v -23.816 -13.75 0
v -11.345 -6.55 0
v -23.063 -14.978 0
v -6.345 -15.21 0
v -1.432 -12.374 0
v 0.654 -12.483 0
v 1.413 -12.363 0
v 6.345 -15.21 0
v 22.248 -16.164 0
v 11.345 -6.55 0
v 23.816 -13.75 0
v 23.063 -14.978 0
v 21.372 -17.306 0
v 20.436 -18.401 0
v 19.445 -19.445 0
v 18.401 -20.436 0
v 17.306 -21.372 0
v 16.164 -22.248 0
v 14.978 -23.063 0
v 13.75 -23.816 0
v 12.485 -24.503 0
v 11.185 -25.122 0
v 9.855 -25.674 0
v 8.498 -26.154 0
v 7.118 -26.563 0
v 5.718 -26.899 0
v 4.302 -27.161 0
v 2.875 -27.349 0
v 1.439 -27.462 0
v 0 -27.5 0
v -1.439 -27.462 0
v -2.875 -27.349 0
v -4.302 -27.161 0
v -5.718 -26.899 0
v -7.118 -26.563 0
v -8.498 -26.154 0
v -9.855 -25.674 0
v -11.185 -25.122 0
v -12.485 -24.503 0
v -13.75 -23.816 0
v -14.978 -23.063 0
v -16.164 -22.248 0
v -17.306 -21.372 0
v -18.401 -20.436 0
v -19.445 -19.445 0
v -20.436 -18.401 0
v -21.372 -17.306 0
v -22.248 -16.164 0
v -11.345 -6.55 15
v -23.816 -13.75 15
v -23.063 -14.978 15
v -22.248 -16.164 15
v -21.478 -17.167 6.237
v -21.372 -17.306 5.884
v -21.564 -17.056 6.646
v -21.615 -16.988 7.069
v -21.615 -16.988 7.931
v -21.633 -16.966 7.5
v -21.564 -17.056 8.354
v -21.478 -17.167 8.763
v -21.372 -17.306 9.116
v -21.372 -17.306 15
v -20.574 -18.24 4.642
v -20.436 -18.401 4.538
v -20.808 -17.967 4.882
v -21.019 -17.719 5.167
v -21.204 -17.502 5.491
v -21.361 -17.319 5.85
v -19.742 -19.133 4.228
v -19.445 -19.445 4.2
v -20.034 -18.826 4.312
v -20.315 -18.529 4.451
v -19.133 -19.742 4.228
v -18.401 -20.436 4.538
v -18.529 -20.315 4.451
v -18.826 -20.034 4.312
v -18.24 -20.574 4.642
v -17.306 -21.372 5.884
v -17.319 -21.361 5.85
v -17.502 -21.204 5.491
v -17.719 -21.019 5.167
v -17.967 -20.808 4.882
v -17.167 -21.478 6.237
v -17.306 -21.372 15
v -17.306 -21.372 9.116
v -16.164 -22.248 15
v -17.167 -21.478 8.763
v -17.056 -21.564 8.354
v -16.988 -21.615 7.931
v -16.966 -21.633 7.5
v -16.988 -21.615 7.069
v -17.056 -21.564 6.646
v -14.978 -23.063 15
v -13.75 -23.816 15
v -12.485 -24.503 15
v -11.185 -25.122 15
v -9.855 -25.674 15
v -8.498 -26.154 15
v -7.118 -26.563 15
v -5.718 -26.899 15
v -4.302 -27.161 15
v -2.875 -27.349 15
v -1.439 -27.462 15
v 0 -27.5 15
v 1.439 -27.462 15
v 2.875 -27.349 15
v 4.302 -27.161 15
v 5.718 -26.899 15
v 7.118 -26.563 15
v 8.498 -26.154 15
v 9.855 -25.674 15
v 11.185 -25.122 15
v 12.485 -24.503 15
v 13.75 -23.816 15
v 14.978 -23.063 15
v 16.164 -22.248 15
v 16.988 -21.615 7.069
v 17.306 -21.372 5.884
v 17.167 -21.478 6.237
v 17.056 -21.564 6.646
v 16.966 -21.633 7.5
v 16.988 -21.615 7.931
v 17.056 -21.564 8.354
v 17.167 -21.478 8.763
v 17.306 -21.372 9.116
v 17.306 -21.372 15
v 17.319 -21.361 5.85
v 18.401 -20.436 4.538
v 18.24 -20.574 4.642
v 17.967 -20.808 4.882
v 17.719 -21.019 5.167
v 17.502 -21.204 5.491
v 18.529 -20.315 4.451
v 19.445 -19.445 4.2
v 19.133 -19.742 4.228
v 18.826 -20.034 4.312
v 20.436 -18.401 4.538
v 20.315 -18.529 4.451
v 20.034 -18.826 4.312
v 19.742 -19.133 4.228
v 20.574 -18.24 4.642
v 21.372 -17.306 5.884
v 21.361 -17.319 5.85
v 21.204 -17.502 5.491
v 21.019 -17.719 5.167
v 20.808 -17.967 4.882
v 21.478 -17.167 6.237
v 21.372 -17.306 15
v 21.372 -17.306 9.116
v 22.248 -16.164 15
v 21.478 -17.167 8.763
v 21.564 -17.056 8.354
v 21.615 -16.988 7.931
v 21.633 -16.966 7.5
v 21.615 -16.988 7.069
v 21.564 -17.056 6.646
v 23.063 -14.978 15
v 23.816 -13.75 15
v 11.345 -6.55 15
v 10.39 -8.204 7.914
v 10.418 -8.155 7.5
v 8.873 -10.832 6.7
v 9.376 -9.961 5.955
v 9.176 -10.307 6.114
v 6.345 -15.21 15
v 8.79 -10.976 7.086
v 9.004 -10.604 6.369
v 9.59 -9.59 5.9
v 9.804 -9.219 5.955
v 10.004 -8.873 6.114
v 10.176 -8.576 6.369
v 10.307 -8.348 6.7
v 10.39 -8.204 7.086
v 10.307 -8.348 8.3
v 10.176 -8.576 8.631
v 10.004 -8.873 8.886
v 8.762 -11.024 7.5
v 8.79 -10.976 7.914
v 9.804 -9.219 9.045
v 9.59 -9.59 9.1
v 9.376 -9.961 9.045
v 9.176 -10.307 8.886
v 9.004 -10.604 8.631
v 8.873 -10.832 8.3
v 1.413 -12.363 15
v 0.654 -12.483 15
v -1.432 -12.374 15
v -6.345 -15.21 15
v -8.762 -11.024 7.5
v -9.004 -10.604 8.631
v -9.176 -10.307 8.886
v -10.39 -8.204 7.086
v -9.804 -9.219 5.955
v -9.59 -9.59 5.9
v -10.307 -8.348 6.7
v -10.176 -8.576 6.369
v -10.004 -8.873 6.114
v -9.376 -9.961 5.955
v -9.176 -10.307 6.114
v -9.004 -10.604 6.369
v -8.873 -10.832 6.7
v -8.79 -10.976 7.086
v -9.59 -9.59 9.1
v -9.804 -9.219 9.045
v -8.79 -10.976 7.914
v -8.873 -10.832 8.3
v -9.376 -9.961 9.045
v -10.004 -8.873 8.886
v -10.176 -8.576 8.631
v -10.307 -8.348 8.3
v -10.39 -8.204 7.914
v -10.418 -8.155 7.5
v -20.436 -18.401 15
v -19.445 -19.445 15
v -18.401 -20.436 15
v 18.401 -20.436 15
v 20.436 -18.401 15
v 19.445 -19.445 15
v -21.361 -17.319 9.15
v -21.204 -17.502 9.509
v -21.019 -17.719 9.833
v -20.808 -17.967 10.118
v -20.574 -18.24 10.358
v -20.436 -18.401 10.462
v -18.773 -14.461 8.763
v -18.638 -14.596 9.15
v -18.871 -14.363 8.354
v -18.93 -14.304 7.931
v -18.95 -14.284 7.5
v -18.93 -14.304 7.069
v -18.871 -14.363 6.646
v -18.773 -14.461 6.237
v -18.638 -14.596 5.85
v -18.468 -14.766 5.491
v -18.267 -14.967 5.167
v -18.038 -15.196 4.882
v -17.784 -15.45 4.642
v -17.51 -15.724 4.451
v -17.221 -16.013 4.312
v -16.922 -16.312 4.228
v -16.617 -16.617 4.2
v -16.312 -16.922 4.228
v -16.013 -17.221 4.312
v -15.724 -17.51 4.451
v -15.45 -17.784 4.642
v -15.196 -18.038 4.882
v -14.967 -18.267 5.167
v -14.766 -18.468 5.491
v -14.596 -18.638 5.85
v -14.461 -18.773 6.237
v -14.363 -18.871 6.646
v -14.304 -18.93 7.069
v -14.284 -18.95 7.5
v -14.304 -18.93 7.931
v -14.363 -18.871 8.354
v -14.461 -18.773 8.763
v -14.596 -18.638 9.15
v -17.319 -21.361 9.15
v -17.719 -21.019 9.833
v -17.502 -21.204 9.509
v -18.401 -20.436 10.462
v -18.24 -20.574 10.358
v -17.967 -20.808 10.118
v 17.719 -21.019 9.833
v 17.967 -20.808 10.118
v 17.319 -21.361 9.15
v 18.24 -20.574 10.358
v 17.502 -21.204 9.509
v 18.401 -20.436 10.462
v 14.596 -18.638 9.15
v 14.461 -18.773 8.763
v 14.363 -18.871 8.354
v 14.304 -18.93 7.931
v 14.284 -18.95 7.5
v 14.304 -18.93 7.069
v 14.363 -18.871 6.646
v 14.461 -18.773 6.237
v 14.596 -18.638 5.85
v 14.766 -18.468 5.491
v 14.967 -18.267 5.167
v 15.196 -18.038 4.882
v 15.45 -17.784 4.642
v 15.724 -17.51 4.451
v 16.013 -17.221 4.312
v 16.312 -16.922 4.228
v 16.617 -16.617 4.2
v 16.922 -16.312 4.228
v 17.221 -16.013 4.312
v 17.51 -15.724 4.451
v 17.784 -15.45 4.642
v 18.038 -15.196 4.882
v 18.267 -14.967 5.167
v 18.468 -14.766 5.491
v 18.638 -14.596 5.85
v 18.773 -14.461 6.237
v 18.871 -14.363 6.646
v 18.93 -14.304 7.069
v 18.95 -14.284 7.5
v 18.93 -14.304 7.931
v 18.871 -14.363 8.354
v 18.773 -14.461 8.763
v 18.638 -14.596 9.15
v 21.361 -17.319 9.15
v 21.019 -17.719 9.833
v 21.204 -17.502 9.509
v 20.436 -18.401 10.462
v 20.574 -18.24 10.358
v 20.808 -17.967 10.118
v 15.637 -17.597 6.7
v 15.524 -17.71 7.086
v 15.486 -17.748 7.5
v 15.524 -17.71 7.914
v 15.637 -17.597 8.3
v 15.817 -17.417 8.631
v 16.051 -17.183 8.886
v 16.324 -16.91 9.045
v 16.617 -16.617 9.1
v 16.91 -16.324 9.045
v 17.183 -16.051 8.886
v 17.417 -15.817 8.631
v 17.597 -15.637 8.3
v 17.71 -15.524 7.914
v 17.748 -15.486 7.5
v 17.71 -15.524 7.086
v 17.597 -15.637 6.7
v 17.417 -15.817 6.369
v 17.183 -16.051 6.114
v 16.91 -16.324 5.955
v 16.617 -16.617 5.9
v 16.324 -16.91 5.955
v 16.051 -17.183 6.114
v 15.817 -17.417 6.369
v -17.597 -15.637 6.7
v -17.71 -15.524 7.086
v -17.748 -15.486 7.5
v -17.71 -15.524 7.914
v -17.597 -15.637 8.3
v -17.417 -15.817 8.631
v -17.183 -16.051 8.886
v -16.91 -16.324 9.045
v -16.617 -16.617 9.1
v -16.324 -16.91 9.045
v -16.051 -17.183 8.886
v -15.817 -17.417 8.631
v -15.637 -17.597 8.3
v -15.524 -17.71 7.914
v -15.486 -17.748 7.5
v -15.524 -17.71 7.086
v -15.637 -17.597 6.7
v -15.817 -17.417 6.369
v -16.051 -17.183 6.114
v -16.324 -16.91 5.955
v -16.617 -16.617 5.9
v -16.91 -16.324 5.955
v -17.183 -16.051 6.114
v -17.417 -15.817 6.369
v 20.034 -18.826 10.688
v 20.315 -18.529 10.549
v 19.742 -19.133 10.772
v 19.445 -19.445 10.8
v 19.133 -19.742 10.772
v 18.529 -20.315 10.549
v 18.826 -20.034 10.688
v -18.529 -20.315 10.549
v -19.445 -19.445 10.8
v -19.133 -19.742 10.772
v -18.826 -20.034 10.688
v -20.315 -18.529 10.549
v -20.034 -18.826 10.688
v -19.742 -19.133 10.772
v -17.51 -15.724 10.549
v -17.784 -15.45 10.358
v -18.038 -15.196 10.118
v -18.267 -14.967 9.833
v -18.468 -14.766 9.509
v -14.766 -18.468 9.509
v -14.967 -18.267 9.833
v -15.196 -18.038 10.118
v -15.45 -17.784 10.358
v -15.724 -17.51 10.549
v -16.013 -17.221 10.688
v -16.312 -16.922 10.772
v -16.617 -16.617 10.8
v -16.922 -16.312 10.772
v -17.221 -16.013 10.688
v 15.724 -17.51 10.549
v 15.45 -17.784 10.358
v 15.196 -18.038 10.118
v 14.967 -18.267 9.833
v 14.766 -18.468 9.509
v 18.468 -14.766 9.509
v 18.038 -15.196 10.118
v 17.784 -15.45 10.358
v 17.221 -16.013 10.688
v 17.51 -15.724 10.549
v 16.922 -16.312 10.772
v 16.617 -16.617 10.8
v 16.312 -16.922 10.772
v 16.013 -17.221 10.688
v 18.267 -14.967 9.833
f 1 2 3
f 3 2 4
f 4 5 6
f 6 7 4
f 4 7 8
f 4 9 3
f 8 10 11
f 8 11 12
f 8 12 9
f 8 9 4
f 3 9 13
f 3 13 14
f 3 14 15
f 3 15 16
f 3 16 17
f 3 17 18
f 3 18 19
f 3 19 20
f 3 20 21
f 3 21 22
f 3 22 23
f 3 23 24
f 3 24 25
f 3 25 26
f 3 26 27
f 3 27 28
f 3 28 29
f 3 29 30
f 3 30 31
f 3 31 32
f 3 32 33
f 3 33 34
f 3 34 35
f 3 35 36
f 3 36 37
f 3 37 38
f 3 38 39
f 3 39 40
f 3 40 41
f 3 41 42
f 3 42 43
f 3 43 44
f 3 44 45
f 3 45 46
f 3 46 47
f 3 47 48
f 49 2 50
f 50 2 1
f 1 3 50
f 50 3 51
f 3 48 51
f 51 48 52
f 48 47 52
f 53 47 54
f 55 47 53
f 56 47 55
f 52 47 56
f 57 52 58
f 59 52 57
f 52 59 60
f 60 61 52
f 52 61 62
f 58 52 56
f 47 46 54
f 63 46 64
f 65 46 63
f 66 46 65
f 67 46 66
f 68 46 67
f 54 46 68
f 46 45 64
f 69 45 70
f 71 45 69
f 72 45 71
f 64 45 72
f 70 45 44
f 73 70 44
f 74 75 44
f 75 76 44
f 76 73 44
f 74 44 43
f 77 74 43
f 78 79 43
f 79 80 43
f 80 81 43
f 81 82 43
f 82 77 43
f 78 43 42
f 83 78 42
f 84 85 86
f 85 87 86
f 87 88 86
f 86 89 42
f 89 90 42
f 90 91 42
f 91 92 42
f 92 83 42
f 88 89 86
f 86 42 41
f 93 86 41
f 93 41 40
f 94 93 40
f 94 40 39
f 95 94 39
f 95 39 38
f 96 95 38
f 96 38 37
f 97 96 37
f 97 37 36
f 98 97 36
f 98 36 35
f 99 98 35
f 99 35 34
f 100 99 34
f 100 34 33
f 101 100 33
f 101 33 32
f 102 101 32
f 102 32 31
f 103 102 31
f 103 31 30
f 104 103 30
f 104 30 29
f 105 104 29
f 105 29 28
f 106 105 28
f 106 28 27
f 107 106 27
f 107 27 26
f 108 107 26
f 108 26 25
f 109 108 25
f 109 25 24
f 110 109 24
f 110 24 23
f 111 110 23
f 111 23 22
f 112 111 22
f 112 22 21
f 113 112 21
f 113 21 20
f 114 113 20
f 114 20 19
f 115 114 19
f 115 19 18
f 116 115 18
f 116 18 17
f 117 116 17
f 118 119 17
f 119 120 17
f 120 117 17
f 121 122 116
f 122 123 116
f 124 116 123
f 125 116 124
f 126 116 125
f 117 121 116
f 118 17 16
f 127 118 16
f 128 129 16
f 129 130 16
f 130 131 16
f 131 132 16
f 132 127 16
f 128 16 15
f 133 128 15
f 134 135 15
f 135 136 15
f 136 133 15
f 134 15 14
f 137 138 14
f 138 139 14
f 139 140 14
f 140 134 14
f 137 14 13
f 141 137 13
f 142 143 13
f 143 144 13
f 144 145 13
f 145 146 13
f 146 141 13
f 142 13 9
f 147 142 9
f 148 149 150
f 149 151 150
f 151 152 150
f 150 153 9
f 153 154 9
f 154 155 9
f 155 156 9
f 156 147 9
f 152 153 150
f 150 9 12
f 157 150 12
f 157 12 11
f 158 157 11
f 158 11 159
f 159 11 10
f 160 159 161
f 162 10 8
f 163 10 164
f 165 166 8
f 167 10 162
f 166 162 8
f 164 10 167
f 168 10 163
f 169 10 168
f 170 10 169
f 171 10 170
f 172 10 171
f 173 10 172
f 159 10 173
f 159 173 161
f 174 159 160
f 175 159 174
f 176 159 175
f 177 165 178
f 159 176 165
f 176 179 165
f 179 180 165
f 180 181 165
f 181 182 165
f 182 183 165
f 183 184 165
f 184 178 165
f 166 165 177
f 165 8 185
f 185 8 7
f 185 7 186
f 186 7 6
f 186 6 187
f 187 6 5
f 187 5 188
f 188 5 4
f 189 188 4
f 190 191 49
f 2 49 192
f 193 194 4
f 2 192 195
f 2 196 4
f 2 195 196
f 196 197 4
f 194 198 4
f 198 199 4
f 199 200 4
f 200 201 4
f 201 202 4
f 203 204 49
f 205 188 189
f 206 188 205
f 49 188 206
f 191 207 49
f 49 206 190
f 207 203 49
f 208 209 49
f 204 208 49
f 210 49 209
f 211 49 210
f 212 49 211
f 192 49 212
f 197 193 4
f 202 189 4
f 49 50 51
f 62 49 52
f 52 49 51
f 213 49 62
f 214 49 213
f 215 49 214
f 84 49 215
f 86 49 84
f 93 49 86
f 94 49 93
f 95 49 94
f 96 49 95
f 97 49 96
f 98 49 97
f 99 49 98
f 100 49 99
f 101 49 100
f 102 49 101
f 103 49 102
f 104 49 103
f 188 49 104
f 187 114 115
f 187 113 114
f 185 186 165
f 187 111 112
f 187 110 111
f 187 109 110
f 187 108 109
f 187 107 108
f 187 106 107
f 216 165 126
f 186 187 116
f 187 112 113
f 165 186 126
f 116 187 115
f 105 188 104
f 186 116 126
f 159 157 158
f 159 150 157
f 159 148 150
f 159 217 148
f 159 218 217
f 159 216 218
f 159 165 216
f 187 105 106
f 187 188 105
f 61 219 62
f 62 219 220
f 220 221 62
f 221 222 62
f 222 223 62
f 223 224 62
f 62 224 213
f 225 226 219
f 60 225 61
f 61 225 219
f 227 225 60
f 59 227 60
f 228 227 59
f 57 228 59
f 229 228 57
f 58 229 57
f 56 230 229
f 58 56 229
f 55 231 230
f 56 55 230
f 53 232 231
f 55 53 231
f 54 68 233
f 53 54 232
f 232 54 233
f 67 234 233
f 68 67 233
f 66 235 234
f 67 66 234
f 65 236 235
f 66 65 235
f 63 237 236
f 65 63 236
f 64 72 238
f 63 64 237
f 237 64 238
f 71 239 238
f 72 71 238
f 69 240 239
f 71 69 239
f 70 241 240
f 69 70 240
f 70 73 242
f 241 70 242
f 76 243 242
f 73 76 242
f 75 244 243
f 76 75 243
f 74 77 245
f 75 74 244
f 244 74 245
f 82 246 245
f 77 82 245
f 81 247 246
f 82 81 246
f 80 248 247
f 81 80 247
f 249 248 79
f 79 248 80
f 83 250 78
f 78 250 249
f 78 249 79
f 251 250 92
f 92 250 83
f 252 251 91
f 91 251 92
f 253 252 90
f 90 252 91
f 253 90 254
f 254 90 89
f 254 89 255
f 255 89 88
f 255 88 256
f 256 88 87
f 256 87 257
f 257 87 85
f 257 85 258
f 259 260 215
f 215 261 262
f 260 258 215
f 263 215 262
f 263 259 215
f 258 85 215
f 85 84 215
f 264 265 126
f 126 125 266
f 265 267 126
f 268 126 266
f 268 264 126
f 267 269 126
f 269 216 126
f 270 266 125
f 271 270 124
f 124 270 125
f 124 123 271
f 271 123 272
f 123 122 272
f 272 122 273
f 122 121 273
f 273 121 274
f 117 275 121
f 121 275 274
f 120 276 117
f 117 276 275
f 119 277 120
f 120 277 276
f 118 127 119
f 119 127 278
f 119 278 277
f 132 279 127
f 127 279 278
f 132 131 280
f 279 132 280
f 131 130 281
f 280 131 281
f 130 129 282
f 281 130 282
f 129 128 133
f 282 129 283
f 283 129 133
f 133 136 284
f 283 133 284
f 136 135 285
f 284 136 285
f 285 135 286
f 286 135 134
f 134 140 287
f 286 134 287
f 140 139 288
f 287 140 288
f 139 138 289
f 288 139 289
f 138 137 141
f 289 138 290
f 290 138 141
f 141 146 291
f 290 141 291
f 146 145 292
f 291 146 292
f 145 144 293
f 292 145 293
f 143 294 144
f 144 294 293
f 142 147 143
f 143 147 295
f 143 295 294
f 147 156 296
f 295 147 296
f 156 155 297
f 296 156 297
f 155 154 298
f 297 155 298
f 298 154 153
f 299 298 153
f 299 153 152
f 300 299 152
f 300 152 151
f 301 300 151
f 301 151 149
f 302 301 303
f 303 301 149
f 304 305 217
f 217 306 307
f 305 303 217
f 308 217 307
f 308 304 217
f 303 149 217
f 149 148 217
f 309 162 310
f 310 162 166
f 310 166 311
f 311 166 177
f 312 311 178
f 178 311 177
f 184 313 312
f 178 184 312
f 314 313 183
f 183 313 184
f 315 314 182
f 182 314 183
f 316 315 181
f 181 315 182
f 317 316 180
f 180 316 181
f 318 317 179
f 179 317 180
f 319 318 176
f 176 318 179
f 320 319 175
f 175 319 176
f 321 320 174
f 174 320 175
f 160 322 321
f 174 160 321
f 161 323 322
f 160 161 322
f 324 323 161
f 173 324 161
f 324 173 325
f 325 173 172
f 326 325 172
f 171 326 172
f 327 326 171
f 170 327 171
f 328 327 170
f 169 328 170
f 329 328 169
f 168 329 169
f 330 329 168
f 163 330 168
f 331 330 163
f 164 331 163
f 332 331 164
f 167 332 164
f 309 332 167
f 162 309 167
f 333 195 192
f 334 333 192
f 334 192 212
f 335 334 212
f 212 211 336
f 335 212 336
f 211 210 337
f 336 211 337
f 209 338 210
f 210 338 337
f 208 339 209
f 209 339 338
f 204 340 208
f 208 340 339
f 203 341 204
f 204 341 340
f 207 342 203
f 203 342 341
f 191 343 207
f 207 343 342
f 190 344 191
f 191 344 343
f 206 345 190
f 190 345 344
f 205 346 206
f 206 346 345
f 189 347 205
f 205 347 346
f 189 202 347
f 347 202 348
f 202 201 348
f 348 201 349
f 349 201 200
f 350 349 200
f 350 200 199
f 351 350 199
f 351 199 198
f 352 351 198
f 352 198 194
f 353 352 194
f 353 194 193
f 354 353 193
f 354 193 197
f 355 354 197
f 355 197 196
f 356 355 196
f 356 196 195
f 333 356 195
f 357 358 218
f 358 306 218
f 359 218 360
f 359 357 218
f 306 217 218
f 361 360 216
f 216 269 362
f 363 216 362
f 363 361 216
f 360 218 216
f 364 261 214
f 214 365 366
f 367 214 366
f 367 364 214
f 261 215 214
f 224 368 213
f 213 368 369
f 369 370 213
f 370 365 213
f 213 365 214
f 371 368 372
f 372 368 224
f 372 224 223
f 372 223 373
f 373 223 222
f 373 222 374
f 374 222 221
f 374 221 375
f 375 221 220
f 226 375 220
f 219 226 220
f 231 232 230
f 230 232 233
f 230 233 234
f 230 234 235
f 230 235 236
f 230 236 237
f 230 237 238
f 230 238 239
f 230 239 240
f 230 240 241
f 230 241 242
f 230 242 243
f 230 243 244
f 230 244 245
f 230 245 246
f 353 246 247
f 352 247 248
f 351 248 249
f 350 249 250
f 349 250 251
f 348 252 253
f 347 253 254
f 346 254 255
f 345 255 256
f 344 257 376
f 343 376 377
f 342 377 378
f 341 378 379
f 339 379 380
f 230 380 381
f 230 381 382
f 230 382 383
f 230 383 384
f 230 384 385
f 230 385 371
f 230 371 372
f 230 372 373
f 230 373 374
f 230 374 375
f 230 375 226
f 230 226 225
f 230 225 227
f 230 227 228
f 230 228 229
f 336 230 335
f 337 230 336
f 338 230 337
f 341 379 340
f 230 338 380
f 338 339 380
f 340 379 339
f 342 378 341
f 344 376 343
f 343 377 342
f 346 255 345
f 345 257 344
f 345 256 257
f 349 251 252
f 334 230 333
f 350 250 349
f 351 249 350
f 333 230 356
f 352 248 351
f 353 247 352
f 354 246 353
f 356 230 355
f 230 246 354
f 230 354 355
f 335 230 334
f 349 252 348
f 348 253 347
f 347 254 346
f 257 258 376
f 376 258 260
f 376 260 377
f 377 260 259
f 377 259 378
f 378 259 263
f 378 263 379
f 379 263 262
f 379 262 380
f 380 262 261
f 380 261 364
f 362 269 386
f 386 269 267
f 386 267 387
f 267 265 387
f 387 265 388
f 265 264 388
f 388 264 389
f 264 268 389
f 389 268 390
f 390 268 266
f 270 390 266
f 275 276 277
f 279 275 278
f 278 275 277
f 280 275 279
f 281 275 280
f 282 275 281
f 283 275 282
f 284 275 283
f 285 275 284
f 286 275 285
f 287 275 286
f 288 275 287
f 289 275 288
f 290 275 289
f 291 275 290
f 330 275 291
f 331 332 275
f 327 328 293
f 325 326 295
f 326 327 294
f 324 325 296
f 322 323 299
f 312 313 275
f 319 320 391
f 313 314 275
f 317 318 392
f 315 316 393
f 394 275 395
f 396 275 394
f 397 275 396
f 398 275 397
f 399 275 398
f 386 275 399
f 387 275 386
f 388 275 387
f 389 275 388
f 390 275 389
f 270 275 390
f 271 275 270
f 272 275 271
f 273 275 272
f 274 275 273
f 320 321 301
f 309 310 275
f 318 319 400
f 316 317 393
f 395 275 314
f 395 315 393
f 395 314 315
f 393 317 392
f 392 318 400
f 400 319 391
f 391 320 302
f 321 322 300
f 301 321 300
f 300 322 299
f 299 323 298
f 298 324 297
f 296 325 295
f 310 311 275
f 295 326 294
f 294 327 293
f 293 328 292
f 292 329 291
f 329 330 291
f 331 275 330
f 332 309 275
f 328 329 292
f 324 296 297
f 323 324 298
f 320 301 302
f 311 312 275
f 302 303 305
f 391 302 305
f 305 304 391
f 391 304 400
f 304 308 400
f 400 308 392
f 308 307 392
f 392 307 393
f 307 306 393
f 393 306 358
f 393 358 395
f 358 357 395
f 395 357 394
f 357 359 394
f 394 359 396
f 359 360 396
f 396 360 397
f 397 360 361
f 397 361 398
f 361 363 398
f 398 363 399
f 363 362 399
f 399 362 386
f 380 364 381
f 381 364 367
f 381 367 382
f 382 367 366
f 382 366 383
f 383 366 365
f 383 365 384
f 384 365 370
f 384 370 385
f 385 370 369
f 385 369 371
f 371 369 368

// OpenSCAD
// file: configuration.scad
// Increase this if your slicer or printer make holes too tight.
extra_radius = 0.1;

// OD = outside diameter, corner to corner.
m3_nut_od = 6.1;
m3_nut_radius = m3_nut_od/2 + 0.2 + extra_radius;

// Major diameter of metric 3mm thread.
m3_major = 2.85;
m3_radius = m3_major/2 + extra_radius;
m3_wide_radius = m3_major/2 + extra_radius + 0.2;

// NEMA17 stepper motors.
motor_shaft_diameter = 5;
motor_shaft_radius = motor_shaft_diameter/2 + extra_radius;

// Frame brackets.
thickness = 3.6;
// main file
include <configuration.scad>;

radius = 27.5;
bracket = 10;

module corner(h) {
  difference() {
    translate([0, 0, (h-15)/2])
      cylinder(h=h, r=radius, center=true, $fn=120);
    // Remove back half of cylinder.
    translate([0, radius, 0])
      cube([2*radius, 2*radius, 2*h], center=true);
    // Center round.
    rotate([0, 0, 45])
      cylinder(r=radius-15, h=2*h, center=true);
    // Horizontal OpenBeam frame pieces.
    rotate([0, 0, -30]) translate([radius-7.5, 30, 0])
      cube([15.1, 60, 2*h], center=true);
    rotate([0, 0, 30]) translate([-radius+7.5, 30, 0])
      cube([15.1, 60, 2*h], center=true);
    // Frame brackets under the corner.
    rotate([0, 0, -30]) translate([thickness+4.5, 20, 0]) #
      cube([bracket, 60, 2*h], center=true);
    rotate([0, 0, 30]) translate([-thickness-4.5, 20, 0]) #
      cube([bracket, 60, 2*h], center=true);
    // Screw holes.
    for (a = [-45, 45]) {
      rotate([0, 0, a]) rotate([90, 0, 0]) {
	cylinder(r=1.6, h=60, center=true, $fn=24);
	translate([0, 0, radius])
	  cylinder(r=3.3, h=8, center=true, $fn=48);
      }
    }
  }
}

translate([0, 0, 7.5]) {
  corner(15);
  % rotate([0, 0, 45]) cube([15, 15, 15], center=true);
}
